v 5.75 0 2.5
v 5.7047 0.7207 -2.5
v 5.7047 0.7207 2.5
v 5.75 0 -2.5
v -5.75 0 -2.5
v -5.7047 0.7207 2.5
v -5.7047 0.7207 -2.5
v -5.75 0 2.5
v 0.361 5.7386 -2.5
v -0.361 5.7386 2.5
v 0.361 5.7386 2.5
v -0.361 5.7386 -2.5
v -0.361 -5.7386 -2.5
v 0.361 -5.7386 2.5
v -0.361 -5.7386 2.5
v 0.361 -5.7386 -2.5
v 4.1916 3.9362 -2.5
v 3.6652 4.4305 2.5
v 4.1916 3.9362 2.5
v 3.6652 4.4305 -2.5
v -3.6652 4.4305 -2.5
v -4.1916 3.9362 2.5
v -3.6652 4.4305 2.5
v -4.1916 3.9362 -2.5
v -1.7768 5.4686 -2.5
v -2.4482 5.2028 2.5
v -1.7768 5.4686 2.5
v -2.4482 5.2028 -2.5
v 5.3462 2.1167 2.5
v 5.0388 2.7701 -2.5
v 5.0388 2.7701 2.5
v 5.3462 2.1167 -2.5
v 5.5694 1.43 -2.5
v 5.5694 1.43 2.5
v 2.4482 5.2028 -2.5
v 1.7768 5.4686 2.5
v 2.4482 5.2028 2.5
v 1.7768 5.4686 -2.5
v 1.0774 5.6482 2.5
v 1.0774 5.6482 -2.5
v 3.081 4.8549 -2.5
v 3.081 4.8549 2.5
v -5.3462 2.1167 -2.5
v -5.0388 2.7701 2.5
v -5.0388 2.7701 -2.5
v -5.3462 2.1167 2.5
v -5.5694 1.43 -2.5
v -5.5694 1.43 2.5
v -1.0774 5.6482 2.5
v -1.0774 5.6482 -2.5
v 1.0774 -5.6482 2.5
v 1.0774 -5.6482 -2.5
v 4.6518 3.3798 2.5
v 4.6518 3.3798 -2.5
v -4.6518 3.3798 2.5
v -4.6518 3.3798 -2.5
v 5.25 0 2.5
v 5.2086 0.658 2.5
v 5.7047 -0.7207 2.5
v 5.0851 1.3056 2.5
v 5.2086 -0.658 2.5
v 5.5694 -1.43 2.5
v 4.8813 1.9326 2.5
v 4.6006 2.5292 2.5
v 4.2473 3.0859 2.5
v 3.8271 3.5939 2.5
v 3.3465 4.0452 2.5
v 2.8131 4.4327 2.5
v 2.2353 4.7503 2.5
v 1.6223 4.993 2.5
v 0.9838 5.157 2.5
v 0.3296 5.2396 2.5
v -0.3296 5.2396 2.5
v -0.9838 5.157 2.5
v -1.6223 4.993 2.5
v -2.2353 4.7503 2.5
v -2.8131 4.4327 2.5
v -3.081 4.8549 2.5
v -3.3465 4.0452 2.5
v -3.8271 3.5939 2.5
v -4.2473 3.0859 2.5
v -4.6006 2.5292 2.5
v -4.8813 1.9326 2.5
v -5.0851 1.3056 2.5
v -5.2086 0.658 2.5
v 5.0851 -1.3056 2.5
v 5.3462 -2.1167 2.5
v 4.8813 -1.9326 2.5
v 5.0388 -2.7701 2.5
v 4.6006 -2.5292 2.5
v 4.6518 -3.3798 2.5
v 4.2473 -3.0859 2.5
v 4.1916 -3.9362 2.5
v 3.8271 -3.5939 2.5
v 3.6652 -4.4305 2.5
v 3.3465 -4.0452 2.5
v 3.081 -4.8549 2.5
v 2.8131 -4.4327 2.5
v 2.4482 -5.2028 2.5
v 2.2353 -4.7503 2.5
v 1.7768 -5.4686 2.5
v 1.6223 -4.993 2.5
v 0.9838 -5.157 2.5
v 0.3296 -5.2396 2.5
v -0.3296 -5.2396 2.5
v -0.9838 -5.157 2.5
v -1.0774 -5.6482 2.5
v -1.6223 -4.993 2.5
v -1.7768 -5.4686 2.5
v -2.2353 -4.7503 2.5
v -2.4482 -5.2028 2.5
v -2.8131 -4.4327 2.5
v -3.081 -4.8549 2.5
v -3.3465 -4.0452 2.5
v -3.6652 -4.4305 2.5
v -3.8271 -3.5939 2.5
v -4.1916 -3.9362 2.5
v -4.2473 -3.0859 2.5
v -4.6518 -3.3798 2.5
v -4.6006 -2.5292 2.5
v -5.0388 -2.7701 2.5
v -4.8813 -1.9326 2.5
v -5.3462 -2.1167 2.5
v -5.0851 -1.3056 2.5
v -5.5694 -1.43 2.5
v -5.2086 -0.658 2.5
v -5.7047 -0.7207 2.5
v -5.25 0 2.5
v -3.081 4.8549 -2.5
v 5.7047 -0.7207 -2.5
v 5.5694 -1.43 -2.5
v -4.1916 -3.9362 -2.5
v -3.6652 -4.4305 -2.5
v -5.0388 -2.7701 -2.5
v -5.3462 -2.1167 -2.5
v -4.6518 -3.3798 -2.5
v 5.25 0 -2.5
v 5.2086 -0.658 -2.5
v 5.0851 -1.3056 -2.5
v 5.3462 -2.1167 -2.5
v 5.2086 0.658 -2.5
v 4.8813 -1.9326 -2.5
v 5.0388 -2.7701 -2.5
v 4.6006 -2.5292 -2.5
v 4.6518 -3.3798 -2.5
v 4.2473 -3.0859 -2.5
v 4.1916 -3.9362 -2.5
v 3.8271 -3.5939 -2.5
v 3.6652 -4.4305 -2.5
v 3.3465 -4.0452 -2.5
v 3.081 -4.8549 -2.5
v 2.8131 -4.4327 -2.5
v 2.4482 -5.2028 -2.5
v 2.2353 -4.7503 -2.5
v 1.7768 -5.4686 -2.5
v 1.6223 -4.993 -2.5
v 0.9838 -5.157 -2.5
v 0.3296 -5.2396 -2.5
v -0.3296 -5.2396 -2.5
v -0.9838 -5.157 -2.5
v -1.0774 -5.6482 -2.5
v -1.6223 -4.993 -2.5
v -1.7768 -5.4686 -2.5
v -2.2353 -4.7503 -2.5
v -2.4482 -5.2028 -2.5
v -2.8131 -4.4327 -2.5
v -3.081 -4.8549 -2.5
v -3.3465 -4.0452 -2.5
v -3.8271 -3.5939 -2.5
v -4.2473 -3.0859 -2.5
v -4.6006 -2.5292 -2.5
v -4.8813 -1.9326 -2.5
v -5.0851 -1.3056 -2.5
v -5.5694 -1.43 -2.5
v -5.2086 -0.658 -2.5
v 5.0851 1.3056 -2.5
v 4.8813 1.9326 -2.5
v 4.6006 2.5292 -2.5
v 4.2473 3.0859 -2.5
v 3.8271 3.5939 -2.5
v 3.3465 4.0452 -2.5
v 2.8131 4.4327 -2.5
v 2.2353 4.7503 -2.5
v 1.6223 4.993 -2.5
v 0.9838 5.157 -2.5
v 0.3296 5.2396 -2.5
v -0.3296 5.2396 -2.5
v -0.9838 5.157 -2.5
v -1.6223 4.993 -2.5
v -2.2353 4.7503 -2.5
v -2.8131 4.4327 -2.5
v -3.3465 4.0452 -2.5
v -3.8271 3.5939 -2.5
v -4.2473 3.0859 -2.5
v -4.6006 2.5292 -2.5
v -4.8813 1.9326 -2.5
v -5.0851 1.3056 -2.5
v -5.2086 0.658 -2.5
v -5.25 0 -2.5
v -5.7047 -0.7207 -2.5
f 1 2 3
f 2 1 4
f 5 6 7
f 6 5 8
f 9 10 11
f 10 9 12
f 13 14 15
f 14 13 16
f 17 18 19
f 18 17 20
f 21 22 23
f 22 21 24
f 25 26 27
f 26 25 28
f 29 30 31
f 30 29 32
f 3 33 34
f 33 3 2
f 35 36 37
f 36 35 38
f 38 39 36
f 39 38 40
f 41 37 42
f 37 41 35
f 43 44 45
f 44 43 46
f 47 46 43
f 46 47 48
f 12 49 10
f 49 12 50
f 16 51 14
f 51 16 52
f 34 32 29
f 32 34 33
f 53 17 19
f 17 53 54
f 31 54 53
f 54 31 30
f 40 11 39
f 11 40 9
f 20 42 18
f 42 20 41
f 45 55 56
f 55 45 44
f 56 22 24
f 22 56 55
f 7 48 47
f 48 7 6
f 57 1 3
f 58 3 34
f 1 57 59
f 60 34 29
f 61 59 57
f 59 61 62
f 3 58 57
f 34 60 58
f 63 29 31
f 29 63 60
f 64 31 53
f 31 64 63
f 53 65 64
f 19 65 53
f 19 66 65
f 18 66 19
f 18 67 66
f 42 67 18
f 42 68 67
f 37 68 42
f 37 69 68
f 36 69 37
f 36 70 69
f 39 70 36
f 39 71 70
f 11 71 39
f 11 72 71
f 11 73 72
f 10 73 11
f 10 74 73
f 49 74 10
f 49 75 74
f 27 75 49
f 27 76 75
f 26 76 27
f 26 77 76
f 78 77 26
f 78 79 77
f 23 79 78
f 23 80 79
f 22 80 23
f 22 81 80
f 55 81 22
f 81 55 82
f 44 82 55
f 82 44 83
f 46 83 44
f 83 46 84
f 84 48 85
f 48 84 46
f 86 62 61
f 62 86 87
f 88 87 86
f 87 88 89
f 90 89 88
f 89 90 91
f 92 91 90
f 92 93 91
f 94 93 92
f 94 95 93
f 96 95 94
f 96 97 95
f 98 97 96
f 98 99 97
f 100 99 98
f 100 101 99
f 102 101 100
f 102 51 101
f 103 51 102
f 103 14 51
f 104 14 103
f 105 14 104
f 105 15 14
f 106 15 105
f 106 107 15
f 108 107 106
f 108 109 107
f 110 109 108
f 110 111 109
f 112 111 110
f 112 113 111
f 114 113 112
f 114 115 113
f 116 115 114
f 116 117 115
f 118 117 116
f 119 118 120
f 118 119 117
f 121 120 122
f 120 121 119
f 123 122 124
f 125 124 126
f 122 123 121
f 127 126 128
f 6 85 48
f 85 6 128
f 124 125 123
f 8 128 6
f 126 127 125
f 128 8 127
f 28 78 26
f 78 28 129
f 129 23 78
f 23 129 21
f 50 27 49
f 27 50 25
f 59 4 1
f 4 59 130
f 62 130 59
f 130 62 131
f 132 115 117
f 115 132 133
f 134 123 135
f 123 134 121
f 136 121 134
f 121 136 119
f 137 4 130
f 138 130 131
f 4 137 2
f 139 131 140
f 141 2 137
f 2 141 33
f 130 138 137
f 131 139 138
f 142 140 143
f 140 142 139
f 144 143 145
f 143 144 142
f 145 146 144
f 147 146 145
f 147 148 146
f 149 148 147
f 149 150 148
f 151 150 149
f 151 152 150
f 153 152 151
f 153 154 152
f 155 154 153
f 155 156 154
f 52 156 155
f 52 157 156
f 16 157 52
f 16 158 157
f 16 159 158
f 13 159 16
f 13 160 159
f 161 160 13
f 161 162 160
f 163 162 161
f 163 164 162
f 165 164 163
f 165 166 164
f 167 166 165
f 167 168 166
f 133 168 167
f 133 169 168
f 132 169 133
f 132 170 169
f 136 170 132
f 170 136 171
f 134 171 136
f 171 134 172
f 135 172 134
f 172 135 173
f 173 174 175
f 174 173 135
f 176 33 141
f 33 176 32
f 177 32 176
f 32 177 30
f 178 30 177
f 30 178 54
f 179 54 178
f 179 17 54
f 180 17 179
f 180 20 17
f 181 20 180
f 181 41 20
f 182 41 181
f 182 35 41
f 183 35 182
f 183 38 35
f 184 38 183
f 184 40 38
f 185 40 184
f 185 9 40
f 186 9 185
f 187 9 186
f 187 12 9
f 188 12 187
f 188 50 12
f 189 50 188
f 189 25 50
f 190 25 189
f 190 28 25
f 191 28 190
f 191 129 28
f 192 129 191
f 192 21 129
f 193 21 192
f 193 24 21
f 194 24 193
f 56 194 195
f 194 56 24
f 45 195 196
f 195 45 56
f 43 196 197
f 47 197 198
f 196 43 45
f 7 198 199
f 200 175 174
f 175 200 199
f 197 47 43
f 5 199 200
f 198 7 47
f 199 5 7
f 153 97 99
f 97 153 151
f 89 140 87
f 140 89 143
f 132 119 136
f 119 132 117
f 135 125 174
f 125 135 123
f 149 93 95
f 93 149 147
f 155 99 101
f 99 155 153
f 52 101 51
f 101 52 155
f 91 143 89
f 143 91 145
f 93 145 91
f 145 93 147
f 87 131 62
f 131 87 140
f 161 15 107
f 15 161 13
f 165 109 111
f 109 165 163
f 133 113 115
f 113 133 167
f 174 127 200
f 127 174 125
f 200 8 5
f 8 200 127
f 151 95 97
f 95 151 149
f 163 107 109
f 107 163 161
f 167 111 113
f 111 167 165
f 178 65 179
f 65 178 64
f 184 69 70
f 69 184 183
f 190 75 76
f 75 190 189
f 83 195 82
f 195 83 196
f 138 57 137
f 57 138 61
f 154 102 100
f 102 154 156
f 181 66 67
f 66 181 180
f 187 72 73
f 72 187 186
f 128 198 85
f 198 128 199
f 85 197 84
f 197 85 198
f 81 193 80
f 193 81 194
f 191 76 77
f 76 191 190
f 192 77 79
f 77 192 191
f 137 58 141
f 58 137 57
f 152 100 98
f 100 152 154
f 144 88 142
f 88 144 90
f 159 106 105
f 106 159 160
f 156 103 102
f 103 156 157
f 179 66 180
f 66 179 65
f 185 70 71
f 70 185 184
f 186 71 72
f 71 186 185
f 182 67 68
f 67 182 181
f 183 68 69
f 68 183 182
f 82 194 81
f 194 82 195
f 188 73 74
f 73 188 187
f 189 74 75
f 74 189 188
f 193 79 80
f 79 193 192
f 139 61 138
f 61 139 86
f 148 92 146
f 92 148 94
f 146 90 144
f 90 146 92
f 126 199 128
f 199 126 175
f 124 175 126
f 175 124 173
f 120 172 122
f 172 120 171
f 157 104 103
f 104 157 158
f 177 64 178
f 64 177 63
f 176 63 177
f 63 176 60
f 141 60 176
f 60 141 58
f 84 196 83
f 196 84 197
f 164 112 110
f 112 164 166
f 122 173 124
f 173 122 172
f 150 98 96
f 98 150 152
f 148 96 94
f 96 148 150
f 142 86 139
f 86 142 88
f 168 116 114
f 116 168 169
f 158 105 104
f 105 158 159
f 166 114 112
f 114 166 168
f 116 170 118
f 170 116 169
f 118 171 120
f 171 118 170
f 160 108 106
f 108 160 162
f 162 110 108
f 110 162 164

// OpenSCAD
$fn = 50;


difference() {
	union() {
		translate(v = [0, 0, -2.5000000000]) {
			cylinder(h = 5, r = 5.7500000000);
		}
	}
	union() {
		translate(v = [0, 0, -100.0000000000]) {
			cylinder(h = 200, r = 5.2500000000);
		}
	}
}
